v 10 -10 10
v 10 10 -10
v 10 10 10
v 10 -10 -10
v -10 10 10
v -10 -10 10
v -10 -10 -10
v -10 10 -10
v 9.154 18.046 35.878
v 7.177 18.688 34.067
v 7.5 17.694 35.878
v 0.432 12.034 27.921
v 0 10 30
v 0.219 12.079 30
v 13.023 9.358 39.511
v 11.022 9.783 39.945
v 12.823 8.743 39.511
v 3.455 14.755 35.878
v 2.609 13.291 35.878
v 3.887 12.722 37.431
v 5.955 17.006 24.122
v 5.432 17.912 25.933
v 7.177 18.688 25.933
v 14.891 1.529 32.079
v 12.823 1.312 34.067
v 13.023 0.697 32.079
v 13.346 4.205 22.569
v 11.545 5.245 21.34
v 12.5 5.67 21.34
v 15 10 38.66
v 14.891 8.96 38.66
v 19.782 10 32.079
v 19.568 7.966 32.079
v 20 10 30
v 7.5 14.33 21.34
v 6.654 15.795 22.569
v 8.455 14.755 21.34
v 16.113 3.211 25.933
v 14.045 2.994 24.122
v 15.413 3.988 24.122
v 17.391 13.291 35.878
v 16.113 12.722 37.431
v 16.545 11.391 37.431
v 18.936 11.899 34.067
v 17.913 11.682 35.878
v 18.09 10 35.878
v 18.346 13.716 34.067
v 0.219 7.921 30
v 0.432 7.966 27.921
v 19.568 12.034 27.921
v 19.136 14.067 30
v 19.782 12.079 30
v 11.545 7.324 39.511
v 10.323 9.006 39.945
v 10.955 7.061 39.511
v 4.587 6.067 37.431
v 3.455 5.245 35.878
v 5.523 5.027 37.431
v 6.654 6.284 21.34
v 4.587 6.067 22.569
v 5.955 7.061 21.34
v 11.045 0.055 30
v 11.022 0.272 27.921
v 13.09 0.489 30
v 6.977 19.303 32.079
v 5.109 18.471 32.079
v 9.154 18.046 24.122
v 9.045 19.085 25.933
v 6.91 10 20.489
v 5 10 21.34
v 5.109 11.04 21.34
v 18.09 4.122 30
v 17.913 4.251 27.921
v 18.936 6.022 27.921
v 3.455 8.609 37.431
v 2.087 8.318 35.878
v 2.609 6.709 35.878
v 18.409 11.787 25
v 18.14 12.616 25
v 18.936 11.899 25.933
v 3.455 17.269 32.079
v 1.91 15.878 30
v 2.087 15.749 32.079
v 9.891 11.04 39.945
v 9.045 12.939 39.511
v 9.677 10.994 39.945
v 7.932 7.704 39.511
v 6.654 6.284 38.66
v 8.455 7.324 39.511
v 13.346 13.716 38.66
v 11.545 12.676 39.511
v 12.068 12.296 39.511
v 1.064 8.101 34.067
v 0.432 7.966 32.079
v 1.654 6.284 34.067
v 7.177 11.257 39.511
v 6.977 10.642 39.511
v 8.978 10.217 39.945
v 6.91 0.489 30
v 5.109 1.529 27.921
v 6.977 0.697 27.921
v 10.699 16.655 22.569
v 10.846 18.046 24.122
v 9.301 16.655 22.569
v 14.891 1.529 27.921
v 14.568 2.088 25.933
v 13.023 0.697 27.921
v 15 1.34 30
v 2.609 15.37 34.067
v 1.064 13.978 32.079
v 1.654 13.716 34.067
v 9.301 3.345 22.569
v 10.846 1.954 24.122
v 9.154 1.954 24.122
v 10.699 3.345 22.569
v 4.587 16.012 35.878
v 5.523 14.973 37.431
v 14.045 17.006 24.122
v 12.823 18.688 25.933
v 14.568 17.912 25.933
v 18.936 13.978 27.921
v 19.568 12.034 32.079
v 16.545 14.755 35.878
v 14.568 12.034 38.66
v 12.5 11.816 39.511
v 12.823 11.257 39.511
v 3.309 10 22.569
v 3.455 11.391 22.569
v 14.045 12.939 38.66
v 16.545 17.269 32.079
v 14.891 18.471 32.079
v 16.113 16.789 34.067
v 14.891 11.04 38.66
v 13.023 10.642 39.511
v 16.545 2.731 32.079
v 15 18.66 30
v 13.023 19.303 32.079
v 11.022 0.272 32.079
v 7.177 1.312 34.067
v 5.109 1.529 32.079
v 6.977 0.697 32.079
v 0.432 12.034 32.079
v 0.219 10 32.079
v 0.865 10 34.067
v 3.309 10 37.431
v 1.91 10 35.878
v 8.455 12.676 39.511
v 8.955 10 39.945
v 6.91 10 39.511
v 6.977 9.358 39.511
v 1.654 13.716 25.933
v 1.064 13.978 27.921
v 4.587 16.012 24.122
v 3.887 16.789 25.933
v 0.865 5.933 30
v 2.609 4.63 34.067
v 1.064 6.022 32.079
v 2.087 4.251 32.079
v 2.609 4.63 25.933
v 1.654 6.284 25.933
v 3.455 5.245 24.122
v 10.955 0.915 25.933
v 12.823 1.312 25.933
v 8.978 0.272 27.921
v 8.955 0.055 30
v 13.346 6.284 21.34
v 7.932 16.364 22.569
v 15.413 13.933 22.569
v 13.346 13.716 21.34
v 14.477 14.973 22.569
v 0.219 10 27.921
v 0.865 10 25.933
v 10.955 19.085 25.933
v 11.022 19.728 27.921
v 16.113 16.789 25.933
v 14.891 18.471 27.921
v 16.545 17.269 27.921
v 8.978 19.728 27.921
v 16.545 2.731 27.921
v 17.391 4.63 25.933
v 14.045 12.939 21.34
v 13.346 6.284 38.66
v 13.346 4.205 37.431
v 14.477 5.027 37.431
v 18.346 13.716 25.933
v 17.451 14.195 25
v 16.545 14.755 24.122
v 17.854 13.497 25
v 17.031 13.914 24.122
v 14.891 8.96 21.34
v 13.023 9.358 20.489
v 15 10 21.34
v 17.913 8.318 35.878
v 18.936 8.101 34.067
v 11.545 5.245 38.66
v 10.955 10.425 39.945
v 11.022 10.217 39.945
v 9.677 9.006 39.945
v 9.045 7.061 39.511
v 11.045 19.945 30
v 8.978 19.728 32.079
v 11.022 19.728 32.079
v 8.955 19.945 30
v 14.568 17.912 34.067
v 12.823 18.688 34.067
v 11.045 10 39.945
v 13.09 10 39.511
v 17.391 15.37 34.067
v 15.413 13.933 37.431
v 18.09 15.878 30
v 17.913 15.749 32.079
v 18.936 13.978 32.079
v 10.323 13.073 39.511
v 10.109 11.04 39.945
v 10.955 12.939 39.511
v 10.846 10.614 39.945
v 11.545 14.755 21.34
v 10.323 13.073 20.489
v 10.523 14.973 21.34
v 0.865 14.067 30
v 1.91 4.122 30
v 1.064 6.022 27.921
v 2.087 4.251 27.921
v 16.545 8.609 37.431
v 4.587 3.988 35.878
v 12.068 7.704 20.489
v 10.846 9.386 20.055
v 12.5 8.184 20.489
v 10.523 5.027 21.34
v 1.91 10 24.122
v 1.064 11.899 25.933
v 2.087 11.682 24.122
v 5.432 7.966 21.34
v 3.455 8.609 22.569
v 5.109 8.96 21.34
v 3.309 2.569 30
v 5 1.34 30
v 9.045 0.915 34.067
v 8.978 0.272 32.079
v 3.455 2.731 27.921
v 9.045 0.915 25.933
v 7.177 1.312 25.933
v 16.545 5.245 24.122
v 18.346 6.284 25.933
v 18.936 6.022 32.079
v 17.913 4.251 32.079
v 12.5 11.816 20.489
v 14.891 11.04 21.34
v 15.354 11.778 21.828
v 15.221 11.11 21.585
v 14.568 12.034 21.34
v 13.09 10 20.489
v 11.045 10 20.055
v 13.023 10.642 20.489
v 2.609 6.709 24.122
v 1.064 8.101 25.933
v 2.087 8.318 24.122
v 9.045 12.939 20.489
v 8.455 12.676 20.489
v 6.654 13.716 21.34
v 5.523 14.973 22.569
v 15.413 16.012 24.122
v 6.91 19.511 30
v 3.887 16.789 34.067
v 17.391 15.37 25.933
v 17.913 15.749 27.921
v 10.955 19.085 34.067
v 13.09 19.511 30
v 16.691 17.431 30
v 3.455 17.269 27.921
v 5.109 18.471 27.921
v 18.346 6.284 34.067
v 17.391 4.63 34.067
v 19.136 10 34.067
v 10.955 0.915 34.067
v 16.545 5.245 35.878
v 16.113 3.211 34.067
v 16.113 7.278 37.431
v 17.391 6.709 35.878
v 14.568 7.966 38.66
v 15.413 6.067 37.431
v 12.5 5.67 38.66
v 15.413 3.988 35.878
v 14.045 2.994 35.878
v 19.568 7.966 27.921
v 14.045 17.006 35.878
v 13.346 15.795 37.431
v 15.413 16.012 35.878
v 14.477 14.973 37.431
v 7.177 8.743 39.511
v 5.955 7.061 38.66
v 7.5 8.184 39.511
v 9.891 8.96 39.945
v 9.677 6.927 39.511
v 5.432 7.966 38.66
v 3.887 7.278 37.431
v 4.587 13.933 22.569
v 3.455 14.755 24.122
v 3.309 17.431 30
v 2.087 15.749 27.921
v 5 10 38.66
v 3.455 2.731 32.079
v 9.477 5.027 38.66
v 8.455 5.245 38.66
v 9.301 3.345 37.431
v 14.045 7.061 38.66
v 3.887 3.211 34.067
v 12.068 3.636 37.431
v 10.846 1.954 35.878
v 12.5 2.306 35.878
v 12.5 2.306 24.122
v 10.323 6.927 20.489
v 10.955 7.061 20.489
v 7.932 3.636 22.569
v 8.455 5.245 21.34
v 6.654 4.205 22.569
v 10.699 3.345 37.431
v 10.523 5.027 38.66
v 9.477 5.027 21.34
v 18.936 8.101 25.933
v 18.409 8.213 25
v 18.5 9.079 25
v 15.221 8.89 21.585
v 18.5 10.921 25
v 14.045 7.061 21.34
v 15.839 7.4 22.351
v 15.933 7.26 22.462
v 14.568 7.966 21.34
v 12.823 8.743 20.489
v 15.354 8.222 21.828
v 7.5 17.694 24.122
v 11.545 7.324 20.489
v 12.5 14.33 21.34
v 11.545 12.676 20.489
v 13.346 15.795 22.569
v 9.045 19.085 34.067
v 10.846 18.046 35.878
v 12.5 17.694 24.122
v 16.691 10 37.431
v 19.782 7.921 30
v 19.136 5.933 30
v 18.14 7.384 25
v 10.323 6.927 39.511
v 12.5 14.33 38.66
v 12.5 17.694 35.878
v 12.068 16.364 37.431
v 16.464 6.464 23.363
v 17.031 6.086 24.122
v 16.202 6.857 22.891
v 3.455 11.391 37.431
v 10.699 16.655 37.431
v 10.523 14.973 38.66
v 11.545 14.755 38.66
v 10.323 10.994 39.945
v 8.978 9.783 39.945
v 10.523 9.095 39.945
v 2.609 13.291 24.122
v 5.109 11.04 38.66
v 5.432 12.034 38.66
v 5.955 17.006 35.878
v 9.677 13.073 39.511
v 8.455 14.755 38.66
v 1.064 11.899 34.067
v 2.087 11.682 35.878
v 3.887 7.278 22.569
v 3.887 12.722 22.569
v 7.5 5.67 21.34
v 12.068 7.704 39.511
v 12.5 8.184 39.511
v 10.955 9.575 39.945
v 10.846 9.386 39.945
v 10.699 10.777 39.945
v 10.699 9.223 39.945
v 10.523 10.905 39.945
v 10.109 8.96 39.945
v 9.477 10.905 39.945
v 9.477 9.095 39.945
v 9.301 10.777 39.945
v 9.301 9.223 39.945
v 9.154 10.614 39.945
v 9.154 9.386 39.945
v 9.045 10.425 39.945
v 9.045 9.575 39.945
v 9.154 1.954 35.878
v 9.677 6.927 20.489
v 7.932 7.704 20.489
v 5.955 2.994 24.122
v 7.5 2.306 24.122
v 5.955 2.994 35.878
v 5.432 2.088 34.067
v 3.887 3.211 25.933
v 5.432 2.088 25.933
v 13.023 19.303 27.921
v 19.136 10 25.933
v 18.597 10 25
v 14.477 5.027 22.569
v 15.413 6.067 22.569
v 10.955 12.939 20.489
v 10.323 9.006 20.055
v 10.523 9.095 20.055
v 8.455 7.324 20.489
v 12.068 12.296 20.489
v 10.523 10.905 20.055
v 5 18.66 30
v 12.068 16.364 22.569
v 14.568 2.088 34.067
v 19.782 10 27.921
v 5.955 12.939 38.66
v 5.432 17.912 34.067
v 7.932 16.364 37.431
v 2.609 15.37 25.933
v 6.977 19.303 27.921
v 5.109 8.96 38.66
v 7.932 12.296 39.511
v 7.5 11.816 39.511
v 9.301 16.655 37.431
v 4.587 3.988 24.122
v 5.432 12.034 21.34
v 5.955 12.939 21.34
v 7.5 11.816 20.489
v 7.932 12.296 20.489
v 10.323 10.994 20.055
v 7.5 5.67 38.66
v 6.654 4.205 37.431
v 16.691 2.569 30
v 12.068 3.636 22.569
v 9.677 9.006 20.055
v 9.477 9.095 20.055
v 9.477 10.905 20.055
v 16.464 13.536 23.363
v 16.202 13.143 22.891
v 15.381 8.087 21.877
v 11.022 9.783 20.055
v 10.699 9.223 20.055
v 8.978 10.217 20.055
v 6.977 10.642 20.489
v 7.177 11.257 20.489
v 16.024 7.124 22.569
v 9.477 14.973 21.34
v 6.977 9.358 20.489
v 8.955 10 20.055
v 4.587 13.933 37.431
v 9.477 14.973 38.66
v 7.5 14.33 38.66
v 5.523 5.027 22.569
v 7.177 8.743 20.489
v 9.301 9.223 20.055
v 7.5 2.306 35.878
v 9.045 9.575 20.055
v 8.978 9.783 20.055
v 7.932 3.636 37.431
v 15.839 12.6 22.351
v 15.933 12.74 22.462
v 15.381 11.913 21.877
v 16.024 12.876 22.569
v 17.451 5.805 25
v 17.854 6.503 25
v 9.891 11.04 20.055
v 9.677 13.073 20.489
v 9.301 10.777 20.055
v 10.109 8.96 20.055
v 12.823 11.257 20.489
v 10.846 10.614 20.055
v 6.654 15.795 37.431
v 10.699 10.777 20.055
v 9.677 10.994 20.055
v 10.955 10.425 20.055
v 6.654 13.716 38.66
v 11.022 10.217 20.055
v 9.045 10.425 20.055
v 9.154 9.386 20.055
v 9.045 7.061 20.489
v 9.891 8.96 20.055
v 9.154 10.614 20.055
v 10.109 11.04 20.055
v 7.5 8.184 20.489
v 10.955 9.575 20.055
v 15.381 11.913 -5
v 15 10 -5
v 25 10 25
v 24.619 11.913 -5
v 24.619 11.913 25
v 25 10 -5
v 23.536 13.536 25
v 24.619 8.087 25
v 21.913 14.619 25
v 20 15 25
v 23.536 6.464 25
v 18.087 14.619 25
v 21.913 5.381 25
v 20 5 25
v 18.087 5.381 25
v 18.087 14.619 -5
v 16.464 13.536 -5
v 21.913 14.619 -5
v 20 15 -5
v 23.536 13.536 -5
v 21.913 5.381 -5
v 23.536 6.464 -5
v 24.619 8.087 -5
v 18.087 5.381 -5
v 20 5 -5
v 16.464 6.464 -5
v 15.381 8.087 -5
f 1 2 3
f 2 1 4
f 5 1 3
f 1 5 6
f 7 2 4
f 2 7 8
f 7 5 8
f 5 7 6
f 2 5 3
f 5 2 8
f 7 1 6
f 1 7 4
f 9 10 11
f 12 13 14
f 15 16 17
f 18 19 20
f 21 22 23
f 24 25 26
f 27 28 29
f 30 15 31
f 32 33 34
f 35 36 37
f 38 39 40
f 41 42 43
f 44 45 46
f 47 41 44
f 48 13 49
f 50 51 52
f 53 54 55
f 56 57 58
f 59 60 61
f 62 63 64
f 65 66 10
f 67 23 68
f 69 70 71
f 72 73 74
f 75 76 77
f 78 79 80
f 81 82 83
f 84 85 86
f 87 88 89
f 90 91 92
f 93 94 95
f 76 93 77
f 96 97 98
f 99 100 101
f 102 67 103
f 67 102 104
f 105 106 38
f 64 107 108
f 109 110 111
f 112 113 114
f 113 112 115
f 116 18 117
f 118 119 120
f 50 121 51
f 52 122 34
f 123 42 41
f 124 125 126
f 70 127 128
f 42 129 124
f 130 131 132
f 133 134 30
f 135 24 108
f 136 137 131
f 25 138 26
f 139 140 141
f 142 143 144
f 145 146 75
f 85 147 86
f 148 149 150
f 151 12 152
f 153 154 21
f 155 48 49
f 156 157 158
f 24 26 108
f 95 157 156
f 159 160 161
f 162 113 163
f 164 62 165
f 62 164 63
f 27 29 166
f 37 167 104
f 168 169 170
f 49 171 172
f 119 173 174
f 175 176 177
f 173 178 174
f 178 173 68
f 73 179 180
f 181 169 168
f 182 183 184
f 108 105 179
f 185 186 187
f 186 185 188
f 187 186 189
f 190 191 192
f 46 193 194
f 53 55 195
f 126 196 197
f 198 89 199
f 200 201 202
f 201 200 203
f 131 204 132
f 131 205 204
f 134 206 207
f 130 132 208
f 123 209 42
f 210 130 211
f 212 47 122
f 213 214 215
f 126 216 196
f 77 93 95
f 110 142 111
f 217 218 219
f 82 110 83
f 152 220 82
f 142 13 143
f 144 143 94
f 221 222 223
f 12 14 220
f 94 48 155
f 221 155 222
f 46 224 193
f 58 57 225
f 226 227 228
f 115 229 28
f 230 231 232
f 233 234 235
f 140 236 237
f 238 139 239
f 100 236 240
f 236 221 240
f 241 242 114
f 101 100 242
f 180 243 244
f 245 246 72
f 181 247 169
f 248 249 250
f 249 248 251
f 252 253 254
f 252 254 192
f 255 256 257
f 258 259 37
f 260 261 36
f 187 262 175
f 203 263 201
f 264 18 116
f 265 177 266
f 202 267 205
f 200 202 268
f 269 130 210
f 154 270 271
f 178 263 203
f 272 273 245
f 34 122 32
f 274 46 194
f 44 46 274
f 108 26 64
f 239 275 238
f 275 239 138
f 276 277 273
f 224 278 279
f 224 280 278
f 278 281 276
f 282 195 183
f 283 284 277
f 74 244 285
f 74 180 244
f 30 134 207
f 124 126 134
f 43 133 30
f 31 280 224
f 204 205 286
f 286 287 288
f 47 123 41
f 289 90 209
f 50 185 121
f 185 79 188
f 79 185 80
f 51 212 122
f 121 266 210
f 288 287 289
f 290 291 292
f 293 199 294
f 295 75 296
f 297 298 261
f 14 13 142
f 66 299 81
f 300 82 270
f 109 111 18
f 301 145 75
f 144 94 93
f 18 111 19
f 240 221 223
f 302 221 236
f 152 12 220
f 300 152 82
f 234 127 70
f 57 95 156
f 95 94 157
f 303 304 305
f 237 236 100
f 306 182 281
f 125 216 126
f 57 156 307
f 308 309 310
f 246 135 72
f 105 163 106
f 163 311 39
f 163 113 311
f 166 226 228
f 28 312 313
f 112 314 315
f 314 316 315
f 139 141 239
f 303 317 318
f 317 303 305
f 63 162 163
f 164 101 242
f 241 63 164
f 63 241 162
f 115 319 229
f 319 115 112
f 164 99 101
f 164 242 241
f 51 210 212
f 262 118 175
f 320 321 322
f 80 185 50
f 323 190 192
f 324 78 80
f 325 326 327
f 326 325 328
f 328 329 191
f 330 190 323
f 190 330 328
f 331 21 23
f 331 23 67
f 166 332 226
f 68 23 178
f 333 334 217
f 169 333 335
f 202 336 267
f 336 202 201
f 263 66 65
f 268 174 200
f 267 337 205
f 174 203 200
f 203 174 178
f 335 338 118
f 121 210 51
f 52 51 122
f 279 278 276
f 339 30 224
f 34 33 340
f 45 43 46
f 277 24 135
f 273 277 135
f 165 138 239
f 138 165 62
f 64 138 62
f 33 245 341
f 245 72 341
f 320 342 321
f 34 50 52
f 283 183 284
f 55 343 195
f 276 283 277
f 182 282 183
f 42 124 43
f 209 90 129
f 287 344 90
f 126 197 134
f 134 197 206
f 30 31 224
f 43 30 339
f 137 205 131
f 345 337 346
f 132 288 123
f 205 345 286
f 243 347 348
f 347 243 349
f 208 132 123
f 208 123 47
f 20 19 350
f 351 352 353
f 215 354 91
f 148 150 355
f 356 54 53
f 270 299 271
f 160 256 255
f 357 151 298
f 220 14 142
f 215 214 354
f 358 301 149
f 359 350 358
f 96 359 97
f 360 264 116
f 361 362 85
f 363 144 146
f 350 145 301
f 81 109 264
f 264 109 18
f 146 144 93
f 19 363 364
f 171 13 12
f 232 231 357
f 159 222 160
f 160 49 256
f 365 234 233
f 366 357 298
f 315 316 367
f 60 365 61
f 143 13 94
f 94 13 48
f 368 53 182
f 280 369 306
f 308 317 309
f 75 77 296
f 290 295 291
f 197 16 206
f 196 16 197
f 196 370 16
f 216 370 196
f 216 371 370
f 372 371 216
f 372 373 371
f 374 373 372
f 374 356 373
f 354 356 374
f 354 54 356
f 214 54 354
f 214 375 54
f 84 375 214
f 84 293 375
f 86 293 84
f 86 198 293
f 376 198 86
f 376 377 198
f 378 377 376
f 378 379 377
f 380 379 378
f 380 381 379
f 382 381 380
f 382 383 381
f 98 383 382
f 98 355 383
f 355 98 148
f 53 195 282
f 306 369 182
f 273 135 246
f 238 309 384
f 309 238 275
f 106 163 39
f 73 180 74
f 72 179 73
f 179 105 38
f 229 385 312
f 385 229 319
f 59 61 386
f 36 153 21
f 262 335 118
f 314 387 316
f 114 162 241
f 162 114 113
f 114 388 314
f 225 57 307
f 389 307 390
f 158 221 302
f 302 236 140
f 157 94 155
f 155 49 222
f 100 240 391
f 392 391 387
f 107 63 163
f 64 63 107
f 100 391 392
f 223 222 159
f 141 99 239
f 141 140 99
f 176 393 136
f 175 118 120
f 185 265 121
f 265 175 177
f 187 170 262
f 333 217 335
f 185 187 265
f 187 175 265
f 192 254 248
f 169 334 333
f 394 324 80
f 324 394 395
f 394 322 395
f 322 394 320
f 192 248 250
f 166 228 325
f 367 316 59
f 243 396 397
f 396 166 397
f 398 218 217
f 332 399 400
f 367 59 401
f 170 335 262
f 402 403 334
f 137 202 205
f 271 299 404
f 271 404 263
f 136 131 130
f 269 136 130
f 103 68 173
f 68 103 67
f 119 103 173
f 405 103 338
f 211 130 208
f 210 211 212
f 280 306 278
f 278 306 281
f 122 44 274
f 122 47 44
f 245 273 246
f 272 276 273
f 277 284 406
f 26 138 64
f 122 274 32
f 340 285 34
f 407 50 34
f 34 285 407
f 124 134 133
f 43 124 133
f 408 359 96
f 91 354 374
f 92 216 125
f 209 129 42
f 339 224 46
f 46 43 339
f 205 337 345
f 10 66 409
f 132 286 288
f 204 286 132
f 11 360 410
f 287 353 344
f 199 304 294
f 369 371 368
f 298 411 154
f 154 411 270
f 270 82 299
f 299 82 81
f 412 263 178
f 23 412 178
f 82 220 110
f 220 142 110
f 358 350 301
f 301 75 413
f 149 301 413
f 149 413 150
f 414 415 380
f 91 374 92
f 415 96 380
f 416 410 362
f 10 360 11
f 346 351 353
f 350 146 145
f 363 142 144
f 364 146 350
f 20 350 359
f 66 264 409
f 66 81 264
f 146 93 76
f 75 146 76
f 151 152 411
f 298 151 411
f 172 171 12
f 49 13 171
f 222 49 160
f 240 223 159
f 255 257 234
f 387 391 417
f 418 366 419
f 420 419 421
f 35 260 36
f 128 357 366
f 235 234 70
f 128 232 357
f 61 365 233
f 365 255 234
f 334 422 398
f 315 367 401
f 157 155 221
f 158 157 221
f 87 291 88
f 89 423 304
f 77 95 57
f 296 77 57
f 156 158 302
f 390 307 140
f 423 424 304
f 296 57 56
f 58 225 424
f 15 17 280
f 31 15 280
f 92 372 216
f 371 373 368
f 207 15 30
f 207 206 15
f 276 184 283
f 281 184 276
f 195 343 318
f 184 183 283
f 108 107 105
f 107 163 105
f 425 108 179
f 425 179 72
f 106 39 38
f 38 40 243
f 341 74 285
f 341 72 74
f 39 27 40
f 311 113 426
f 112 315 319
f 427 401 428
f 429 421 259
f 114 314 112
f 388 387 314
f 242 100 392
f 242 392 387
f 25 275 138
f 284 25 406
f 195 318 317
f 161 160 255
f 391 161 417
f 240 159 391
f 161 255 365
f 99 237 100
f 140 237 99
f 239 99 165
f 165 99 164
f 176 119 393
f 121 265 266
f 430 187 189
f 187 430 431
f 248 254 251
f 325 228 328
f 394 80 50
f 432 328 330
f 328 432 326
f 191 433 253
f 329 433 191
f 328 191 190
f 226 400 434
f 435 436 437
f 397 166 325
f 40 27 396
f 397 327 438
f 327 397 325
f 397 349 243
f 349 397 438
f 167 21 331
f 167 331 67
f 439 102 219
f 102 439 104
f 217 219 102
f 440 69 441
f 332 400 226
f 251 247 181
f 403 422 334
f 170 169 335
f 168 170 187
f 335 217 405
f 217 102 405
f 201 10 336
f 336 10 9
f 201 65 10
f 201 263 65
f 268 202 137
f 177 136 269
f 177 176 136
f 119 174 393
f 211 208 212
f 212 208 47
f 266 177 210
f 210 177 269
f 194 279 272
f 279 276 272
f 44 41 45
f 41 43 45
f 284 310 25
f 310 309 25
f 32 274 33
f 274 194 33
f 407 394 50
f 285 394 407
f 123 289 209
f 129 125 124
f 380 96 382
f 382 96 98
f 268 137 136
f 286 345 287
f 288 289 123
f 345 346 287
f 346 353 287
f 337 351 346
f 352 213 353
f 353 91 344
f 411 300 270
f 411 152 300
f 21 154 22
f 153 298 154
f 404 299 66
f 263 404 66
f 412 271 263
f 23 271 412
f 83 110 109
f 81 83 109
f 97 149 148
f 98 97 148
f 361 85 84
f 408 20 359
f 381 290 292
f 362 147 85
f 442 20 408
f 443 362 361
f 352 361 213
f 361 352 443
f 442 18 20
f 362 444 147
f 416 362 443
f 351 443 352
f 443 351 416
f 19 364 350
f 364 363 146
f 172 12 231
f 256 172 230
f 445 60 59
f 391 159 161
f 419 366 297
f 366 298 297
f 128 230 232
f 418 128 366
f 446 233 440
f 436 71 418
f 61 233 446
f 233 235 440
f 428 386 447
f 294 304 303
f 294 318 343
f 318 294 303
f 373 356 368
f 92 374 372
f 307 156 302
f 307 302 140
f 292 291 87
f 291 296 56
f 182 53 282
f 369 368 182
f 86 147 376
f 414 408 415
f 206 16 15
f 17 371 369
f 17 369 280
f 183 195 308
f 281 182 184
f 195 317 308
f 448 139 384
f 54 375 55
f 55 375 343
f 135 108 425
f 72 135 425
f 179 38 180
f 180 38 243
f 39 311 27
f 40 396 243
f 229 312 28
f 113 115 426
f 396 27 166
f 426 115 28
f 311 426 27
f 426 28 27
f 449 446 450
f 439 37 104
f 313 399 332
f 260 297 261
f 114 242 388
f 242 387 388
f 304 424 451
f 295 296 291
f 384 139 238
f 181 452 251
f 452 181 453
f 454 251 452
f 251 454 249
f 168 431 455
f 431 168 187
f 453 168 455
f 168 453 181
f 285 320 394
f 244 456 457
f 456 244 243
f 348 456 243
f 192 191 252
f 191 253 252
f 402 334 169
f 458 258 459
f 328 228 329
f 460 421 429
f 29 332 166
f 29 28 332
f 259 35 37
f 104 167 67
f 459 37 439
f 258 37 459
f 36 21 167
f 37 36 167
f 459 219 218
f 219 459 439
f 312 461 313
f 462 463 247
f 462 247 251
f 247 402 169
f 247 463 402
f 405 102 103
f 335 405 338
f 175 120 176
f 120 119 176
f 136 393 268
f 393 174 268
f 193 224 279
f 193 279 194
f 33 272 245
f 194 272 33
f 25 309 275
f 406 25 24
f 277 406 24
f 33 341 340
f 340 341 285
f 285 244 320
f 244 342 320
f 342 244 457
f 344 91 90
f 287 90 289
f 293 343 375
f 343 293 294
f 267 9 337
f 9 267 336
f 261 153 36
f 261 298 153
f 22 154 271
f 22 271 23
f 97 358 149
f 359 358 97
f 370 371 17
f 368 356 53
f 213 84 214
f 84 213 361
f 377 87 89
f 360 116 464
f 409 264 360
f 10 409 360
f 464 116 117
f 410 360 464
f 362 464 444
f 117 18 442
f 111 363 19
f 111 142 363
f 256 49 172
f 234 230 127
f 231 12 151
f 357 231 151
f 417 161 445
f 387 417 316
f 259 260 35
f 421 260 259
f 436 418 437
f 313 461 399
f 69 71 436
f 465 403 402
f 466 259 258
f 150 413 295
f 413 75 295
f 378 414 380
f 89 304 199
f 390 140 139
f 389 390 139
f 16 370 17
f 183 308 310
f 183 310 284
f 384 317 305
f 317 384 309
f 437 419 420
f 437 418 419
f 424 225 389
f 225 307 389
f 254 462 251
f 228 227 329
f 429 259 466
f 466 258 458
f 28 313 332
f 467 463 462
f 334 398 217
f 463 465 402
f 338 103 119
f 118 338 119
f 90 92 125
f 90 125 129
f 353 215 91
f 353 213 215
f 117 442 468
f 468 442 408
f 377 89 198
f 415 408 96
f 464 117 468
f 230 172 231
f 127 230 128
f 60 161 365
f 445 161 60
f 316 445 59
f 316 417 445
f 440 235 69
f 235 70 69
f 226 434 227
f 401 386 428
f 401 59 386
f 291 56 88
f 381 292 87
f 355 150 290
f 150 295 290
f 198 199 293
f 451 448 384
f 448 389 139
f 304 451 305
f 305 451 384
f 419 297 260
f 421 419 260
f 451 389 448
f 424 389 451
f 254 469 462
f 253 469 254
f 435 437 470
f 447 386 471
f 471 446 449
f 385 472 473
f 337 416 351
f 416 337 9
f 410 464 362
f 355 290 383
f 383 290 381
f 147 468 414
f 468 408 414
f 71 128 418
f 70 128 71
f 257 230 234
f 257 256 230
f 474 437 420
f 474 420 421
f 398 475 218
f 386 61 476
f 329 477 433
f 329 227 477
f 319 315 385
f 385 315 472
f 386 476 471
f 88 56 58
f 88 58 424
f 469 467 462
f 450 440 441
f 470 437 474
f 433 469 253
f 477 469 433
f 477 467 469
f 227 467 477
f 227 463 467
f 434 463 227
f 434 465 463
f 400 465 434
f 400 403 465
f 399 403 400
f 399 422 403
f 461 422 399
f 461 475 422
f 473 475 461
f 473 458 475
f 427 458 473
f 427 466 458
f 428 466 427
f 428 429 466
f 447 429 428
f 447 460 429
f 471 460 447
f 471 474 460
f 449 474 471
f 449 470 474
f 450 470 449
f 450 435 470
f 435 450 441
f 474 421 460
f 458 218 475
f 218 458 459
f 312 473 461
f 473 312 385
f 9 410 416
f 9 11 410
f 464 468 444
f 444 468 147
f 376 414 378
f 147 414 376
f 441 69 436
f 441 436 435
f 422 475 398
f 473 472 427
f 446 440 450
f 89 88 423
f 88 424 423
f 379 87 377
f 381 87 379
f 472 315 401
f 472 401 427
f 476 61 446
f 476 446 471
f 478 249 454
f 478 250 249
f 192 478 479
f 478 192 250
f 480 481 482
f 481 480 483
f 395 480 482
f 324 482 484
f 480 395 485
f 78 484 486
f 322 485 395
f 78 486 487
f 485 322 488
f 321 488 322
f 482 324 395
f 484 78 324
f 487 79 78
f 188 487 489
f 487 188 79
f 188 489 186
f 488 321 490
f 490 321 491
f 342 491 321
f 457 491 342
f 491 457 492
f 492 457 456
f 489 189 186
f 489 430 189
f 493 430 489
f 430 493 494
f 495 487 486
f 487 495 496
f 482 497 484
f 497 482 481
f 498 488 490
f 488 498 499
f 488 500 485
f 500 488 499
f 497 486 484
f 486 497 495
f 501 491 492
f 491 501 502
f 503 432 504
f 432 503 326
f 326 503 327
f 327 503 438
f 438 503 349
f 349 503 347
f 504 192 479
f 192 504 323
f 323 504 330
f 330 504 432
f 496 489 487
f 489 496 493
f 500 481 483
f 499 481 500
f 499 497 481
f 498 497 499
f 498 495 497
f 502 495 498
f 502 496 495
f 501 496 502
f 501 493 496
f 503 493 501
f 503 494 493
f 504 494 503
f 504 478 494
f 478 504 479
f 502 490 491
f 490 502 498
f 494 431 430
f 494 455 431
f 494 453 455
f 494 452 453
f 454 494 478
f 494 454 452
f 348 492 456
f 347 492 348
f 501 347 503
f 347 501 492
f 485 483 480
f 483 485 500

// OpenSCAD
// Define the dimensions of the cube
cube_size = 20;

// Define the radius of the sphere
sphere_radius = 10;

// Define the dimensions of the cylinder
cylinder_height = 30;
cylinder_radius = 5;

// Define the position of the cylinder relative to the cube
cylinder_position = [cube_size, cube_size/2, cube_size/2];

// Define the position of the sphere relative to the cube
sphere_position = [cube_size/2, cube_size/2, cube_size + sphere_radius];

// Create a module for the cube
module create_cube() {
    cube(cube_size, center=true);
}

// Create a module for the sphere
module create_sphere() {
    translate(sphere_position)
    sphere(sphere_radius);
}

// Create a module for the cylinder
module create_cylinder() {
    translate(cylinder_position)
    cylinder(h=cylinder_height, r=cylinder_radius, center=true);
}

// Create a main module that calls the other modules
module main() {
    create_cube();
    create_sphere();
    create_cylinder();
}

// Call the main module
main();
